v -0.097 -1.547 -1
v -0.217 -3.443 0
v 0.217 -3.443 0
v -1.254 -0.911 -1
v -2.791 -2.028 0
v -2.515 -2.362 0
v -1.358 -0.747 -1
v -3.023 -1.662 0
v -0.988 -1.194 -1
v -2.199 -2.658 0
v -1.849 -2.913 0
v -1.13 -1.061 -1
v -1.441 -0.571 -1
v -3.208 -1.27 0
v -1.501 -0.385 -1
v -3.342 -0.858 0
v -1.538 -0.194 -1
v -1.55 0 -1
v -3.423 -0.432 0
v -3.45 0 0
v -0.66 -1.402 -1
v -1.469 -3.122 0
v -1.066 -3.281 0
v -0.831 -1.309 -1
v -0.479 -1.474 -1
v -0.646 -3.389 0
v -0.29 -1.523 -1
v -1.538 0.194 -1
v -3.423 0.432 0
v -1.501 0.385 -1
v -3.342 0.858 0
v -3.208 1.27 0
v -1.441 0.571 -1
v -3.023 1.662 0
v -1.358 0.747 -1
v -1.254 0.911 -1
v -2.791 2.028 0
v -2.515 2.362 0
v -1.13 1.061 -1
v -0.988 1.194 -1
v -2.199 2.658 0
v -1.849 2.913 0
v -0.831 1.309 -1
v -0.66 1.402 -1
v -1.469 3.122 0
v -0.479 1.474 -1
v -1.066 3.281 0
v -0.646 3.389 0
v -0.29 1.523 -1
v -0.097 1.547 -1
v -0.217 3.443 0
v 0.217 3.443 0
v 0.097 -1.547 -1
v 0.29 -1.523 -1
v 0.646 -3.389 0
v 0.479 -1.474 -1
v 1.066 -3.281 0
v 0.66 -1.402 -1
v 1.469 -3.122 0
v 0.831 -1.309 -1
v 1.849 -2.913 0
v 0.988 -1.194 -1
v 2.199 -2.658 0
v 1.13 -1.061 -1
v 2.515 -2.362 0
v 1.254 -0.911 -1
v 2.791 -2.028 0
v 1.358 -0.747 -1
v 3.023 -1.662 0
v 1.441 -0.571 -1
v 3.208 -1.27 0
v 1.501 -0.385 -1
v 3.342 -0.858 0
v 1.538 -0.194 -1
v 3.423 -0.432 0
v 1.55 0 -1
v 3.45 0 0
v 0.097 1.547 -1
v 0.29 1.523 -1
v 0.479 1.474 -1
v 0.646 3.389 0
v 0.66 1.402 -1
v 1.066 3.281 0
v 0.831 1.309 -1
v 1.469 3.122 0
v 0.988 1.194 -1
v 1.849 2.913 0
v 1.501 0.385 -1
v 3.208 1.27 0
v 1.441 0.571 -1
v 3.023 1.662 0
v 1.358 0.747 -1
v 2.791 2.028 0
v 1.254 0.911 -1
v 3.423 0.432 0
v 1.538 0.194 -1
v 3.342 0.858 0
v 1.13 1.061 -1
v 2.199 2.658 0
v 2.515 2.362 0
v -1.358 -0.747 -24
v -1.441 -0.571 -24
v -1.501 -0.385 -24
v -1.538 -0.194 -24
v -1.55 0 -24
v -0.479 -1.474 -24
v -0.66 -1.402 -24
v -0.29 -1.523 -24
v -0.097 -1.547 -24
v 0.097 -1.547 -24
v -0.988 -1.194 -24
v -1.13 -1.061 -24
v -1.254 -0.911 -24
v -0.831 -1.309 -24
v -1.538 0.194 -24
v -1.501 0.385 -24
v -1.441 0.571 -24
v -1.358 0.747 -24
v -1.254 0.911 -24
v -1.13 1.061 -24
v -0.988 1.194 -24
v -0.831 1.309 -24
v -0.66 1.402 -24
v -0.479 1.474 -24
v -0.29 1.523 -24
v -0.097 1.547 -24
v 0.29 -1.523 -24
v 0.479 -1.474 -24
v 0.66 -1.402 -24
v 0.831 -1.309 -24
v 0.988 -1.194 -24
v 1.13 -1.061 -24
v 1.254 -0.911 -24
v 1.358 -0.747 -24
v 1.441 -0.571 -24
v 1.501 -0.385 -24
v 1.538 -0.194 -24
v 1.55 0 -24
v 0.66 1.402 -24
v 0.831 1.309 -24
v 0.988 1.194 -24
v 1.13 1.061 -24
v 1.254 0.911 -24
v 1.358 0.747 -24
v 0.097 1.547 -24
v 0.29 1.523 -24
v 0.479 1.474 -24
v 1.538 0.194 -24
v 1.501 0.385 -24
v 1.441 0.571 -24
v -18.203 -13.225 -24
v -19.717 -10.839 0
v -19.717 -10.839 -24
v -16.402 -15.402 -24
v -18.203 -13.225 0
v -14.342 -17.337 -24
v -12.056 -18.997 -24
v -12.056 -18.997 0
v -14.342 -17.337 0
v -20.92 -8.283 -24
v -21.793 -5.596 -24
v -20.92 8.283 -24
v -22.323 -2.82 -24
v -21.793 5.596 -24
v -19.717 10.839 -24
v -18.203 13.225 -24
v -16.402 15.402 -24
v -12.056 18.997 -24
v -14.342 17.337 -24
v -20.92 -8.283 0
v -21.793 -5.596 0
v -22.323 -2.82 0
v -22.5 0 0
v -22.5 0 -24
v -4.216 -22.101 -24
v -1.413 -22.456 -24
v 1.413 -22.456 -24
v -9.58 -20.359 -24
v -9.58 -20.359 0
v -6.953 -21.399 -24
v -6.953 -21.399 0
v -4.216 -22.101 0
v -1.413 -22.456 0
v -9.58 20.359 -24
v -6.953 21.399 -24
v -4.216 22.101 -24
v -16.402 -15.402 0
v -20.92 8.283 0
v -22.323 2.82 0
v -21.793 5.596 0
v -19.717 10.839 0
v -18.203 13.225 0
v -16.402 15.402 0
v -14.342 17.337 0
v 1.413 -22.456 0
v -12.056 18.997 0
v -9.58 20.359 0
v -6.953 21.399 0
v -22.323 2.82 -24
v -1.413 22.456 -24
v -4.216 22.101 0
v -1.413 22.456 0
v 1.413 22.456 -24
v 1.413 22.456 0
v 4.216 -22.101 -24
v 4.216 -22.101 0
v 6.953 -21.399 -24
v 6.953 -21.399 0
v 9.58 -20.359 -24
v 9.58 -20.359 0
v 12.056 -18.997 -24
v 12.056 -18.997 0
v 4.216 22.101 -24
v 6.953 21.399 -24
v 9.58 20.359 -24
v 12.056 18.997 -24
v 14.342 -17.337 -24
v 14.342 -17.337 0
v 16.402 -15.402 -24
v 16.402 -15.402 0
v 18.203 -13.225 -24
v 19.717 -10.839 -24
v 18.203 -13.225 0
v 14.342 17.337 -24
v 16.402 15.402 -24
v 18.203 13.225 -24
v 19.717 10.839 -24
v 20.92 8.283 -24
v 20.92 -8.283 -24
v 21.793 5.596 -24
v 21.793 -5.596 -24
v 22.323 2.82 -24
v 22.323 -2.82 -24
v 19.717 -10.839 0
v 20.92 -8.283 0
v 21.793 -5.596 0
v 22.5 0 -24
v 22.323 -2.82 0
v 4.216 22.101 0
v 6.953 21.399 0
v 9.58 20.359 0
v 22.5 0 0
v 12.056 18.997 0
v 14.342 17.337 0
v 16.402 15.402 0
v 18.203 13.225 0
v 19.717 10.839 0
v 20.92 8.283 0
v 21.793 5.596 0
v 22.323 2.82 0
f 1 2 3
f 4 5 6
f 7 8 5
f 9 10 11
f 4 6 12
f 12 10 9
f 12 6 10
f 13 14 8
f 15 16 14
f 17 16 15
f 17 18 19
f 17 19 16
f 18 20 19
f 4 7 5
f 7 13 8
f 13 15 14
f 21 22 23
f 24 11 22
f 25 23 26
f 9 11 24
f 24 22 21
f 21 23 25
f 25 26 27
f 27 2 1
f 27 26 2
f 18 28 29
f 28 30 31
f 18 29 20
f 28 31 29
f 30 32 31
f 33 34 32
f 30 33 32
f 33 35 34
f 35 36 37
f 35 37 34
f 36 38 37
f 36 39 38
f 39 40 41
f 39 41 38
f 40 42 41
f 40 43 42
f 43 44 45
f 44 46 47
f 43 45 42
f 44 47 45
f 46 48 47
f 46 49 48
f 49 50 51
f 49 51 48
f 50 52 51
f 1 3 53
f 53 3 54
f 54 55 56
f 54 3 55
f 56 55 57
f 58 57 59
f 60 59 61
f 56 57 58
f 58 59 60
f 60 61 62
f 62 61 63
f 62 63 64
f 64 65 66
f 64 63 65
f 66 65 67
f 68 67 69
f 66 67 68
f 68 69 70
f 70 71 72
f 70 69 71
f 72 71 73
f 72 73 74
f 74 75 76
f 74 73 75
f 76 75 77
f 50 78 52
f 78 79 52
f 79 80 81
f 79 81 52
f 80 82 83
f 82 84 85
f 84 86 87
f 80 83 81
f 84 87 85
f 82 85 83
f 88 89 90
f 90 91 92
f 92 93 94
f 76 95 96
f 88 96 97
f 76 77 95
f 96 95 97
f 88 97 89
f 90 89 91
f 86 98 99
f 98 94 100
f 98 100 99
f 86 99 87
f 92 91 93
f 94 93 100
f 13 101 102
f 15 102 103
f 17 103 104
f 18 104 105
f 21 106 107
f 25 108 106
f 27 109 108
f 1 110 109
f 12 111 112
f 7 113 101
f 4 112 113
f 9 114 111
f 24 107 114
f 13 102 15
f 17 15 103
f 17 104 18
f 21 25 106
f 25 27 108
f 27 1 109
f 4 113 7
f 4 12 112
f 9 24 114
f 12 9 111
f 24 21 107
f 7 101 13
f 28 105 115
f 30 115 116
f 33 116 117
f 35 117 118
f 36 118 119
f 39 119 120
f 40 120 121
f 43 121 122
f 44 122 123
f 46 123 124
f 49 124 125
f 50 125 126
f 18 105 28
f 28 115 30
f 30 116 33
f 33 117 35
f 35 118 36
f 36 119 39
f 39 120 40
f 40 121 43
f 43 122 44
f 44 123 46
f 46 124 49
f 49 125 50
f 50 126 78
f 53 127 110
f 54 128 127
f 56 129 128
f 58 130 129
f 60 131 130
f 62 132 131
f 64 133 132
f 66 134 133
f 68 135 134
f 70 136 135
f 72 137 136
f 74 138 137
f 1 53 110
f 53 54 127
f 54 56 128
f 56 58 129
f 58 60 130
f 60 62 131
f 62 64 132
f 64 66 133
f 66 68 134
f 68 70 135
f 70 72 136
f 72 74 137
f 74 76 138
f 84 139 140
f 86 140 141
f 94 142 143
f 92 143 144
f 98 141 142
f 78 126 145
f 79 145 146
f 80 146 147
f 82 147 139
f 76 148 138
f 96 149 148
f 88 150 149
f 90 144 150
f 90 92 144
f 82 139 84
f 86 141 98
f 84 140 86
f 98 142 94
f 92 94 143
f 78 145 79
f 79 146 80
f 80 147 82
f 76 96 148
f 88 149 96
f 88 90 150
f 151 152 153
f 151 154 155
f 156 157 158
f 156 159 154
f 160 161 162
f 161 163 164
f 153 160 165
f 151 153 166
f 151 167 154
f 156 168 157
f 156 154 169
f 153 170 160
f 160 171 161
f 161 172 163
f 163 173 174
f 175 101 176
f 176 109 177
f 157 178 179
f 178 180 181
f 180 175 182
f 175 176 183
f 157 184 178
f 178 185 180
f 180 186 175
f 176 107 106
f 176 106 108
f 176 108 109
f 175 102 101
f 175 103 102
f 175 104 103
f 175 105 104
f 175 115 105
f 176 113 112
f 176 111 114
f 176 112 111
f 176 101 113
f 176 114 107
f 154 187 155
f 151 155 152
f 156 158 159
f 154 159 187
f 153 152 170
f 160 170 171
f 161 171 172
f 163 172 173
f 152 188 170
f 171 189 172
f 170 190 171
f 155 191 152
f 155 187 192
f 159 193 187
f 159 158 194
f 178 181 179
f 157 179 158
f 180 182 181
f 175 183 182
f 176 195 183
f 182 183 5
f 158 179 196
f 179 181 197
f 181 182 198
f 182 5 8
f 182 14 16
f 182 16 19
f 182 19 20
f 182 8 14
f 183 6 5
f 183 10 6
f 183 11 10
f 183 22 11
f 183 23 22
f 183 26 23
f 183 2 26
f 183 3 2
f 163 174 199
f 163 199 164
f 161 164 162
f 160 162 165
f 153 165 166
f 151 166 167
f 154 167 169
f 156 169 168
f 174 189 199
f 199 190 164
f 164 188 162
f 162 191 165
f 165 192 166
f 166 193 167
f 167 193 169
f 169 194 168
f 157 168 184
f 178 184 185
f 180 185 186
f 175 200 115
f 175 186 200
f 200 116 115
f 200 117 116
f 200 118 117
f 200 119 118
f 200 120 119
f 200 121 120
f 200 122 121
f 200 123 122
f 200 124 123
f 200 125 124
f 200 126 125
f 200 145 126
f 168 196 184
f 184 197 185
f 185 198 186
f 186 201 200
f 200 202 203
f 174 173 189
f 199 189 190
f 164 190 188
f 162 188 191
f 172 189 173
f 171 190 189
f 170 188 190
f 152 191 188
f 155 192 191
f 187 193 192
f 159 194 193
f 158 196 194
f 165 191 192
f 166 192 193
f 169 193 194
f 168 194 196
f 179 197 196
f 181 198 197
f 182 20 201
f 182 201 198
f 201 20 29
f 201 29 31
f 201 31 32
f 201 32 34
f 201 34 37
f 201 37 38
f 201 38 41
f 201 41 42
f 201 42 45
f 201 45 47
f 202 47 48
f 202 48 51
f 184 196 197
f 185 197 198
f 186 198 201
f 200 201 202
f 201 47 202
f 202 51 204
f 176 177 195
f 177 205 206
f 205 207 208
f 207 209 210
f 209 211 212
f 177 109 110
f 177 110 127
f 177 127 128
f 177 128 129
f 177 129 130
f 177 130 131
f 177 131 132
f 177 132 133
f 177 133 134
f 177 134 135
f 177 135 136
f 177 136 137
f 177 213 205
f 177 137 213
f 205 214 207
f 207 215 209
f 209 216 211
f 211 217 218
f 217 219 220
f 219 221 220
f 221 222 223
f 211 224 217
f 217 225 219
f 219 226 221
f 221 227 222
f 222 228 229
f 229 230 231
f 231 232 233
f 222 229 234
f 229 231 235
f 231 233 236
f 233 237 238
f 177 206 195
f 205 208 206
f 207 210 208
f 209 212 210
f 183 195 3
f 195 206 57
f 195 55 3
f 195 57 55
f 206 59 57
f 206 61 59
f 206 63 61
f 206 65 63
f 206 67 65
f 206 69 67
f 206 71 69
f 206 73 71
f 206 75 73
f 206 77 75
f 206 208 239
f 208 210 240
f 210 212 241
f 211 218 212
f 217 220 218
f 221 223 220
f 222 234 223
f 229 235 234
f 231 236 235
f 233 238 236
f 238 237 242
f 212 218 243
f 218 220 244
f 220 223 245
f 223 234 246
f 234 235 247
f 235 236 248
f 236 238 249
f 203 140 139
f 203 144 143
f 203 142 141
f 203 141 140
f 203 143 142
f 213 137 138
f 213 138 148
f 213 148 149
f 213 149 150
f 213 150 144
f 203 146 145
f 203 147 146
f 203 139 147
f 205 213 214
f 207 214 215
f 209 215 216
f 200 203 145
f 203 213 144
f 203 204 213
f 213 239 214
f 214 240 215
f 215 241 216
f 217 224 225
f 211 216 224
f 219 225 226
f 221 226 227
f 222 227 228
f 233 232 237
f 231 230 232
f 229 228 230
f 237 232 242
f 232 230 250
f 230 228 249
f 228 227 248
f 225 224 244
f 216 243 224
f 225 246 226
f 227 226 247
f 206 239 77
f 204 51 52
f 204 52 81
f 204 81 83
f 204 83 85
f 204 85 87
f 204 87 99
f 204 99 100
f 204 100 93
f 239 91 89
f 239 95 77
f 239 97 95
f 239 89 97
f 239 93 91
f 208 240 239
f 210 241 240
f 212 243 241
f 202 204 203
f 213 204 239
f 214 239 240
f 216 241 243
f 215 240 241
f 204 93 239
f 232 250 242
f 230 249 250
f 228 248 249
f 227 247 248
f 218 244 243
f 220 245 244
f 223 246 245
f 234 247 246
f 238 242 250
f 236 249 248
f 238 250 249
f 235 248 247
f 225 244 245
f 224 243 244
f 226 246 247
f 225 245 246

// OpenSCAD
$fn = 50;


difference() {
	union() {
		translate(v = [0, 0, -24.0000000000]) {
			cylinder(h = 24, r = 22.5000000000);
		}
	}
	union() {
		translate(v = [0, 0, 0]) {
			rotate(a = [0, 0, 0]) {
				difference() {
					union() {
						translate(v = [0, 0, -27.0000000000]) {
							cylinder(h = 27, r = 1.2500000000);
						}
						translate(v = [0, 0, -1.0000000000]) {
							cylinder(h = 1.0000000000, r1 = 1.5500000000, r2 = 3.4500000000);
						}
						translate(v = [0, 0, -27.0000000000]) {
							cylinder(h = 27, r = 1.5500000000);
						}
						translate(v = [0, 0, -27.0000000000]) {
							cylinder(h = 27, r = 1.2500000000);
						}
					}
					union();
				}
			}
		}
	}
}
